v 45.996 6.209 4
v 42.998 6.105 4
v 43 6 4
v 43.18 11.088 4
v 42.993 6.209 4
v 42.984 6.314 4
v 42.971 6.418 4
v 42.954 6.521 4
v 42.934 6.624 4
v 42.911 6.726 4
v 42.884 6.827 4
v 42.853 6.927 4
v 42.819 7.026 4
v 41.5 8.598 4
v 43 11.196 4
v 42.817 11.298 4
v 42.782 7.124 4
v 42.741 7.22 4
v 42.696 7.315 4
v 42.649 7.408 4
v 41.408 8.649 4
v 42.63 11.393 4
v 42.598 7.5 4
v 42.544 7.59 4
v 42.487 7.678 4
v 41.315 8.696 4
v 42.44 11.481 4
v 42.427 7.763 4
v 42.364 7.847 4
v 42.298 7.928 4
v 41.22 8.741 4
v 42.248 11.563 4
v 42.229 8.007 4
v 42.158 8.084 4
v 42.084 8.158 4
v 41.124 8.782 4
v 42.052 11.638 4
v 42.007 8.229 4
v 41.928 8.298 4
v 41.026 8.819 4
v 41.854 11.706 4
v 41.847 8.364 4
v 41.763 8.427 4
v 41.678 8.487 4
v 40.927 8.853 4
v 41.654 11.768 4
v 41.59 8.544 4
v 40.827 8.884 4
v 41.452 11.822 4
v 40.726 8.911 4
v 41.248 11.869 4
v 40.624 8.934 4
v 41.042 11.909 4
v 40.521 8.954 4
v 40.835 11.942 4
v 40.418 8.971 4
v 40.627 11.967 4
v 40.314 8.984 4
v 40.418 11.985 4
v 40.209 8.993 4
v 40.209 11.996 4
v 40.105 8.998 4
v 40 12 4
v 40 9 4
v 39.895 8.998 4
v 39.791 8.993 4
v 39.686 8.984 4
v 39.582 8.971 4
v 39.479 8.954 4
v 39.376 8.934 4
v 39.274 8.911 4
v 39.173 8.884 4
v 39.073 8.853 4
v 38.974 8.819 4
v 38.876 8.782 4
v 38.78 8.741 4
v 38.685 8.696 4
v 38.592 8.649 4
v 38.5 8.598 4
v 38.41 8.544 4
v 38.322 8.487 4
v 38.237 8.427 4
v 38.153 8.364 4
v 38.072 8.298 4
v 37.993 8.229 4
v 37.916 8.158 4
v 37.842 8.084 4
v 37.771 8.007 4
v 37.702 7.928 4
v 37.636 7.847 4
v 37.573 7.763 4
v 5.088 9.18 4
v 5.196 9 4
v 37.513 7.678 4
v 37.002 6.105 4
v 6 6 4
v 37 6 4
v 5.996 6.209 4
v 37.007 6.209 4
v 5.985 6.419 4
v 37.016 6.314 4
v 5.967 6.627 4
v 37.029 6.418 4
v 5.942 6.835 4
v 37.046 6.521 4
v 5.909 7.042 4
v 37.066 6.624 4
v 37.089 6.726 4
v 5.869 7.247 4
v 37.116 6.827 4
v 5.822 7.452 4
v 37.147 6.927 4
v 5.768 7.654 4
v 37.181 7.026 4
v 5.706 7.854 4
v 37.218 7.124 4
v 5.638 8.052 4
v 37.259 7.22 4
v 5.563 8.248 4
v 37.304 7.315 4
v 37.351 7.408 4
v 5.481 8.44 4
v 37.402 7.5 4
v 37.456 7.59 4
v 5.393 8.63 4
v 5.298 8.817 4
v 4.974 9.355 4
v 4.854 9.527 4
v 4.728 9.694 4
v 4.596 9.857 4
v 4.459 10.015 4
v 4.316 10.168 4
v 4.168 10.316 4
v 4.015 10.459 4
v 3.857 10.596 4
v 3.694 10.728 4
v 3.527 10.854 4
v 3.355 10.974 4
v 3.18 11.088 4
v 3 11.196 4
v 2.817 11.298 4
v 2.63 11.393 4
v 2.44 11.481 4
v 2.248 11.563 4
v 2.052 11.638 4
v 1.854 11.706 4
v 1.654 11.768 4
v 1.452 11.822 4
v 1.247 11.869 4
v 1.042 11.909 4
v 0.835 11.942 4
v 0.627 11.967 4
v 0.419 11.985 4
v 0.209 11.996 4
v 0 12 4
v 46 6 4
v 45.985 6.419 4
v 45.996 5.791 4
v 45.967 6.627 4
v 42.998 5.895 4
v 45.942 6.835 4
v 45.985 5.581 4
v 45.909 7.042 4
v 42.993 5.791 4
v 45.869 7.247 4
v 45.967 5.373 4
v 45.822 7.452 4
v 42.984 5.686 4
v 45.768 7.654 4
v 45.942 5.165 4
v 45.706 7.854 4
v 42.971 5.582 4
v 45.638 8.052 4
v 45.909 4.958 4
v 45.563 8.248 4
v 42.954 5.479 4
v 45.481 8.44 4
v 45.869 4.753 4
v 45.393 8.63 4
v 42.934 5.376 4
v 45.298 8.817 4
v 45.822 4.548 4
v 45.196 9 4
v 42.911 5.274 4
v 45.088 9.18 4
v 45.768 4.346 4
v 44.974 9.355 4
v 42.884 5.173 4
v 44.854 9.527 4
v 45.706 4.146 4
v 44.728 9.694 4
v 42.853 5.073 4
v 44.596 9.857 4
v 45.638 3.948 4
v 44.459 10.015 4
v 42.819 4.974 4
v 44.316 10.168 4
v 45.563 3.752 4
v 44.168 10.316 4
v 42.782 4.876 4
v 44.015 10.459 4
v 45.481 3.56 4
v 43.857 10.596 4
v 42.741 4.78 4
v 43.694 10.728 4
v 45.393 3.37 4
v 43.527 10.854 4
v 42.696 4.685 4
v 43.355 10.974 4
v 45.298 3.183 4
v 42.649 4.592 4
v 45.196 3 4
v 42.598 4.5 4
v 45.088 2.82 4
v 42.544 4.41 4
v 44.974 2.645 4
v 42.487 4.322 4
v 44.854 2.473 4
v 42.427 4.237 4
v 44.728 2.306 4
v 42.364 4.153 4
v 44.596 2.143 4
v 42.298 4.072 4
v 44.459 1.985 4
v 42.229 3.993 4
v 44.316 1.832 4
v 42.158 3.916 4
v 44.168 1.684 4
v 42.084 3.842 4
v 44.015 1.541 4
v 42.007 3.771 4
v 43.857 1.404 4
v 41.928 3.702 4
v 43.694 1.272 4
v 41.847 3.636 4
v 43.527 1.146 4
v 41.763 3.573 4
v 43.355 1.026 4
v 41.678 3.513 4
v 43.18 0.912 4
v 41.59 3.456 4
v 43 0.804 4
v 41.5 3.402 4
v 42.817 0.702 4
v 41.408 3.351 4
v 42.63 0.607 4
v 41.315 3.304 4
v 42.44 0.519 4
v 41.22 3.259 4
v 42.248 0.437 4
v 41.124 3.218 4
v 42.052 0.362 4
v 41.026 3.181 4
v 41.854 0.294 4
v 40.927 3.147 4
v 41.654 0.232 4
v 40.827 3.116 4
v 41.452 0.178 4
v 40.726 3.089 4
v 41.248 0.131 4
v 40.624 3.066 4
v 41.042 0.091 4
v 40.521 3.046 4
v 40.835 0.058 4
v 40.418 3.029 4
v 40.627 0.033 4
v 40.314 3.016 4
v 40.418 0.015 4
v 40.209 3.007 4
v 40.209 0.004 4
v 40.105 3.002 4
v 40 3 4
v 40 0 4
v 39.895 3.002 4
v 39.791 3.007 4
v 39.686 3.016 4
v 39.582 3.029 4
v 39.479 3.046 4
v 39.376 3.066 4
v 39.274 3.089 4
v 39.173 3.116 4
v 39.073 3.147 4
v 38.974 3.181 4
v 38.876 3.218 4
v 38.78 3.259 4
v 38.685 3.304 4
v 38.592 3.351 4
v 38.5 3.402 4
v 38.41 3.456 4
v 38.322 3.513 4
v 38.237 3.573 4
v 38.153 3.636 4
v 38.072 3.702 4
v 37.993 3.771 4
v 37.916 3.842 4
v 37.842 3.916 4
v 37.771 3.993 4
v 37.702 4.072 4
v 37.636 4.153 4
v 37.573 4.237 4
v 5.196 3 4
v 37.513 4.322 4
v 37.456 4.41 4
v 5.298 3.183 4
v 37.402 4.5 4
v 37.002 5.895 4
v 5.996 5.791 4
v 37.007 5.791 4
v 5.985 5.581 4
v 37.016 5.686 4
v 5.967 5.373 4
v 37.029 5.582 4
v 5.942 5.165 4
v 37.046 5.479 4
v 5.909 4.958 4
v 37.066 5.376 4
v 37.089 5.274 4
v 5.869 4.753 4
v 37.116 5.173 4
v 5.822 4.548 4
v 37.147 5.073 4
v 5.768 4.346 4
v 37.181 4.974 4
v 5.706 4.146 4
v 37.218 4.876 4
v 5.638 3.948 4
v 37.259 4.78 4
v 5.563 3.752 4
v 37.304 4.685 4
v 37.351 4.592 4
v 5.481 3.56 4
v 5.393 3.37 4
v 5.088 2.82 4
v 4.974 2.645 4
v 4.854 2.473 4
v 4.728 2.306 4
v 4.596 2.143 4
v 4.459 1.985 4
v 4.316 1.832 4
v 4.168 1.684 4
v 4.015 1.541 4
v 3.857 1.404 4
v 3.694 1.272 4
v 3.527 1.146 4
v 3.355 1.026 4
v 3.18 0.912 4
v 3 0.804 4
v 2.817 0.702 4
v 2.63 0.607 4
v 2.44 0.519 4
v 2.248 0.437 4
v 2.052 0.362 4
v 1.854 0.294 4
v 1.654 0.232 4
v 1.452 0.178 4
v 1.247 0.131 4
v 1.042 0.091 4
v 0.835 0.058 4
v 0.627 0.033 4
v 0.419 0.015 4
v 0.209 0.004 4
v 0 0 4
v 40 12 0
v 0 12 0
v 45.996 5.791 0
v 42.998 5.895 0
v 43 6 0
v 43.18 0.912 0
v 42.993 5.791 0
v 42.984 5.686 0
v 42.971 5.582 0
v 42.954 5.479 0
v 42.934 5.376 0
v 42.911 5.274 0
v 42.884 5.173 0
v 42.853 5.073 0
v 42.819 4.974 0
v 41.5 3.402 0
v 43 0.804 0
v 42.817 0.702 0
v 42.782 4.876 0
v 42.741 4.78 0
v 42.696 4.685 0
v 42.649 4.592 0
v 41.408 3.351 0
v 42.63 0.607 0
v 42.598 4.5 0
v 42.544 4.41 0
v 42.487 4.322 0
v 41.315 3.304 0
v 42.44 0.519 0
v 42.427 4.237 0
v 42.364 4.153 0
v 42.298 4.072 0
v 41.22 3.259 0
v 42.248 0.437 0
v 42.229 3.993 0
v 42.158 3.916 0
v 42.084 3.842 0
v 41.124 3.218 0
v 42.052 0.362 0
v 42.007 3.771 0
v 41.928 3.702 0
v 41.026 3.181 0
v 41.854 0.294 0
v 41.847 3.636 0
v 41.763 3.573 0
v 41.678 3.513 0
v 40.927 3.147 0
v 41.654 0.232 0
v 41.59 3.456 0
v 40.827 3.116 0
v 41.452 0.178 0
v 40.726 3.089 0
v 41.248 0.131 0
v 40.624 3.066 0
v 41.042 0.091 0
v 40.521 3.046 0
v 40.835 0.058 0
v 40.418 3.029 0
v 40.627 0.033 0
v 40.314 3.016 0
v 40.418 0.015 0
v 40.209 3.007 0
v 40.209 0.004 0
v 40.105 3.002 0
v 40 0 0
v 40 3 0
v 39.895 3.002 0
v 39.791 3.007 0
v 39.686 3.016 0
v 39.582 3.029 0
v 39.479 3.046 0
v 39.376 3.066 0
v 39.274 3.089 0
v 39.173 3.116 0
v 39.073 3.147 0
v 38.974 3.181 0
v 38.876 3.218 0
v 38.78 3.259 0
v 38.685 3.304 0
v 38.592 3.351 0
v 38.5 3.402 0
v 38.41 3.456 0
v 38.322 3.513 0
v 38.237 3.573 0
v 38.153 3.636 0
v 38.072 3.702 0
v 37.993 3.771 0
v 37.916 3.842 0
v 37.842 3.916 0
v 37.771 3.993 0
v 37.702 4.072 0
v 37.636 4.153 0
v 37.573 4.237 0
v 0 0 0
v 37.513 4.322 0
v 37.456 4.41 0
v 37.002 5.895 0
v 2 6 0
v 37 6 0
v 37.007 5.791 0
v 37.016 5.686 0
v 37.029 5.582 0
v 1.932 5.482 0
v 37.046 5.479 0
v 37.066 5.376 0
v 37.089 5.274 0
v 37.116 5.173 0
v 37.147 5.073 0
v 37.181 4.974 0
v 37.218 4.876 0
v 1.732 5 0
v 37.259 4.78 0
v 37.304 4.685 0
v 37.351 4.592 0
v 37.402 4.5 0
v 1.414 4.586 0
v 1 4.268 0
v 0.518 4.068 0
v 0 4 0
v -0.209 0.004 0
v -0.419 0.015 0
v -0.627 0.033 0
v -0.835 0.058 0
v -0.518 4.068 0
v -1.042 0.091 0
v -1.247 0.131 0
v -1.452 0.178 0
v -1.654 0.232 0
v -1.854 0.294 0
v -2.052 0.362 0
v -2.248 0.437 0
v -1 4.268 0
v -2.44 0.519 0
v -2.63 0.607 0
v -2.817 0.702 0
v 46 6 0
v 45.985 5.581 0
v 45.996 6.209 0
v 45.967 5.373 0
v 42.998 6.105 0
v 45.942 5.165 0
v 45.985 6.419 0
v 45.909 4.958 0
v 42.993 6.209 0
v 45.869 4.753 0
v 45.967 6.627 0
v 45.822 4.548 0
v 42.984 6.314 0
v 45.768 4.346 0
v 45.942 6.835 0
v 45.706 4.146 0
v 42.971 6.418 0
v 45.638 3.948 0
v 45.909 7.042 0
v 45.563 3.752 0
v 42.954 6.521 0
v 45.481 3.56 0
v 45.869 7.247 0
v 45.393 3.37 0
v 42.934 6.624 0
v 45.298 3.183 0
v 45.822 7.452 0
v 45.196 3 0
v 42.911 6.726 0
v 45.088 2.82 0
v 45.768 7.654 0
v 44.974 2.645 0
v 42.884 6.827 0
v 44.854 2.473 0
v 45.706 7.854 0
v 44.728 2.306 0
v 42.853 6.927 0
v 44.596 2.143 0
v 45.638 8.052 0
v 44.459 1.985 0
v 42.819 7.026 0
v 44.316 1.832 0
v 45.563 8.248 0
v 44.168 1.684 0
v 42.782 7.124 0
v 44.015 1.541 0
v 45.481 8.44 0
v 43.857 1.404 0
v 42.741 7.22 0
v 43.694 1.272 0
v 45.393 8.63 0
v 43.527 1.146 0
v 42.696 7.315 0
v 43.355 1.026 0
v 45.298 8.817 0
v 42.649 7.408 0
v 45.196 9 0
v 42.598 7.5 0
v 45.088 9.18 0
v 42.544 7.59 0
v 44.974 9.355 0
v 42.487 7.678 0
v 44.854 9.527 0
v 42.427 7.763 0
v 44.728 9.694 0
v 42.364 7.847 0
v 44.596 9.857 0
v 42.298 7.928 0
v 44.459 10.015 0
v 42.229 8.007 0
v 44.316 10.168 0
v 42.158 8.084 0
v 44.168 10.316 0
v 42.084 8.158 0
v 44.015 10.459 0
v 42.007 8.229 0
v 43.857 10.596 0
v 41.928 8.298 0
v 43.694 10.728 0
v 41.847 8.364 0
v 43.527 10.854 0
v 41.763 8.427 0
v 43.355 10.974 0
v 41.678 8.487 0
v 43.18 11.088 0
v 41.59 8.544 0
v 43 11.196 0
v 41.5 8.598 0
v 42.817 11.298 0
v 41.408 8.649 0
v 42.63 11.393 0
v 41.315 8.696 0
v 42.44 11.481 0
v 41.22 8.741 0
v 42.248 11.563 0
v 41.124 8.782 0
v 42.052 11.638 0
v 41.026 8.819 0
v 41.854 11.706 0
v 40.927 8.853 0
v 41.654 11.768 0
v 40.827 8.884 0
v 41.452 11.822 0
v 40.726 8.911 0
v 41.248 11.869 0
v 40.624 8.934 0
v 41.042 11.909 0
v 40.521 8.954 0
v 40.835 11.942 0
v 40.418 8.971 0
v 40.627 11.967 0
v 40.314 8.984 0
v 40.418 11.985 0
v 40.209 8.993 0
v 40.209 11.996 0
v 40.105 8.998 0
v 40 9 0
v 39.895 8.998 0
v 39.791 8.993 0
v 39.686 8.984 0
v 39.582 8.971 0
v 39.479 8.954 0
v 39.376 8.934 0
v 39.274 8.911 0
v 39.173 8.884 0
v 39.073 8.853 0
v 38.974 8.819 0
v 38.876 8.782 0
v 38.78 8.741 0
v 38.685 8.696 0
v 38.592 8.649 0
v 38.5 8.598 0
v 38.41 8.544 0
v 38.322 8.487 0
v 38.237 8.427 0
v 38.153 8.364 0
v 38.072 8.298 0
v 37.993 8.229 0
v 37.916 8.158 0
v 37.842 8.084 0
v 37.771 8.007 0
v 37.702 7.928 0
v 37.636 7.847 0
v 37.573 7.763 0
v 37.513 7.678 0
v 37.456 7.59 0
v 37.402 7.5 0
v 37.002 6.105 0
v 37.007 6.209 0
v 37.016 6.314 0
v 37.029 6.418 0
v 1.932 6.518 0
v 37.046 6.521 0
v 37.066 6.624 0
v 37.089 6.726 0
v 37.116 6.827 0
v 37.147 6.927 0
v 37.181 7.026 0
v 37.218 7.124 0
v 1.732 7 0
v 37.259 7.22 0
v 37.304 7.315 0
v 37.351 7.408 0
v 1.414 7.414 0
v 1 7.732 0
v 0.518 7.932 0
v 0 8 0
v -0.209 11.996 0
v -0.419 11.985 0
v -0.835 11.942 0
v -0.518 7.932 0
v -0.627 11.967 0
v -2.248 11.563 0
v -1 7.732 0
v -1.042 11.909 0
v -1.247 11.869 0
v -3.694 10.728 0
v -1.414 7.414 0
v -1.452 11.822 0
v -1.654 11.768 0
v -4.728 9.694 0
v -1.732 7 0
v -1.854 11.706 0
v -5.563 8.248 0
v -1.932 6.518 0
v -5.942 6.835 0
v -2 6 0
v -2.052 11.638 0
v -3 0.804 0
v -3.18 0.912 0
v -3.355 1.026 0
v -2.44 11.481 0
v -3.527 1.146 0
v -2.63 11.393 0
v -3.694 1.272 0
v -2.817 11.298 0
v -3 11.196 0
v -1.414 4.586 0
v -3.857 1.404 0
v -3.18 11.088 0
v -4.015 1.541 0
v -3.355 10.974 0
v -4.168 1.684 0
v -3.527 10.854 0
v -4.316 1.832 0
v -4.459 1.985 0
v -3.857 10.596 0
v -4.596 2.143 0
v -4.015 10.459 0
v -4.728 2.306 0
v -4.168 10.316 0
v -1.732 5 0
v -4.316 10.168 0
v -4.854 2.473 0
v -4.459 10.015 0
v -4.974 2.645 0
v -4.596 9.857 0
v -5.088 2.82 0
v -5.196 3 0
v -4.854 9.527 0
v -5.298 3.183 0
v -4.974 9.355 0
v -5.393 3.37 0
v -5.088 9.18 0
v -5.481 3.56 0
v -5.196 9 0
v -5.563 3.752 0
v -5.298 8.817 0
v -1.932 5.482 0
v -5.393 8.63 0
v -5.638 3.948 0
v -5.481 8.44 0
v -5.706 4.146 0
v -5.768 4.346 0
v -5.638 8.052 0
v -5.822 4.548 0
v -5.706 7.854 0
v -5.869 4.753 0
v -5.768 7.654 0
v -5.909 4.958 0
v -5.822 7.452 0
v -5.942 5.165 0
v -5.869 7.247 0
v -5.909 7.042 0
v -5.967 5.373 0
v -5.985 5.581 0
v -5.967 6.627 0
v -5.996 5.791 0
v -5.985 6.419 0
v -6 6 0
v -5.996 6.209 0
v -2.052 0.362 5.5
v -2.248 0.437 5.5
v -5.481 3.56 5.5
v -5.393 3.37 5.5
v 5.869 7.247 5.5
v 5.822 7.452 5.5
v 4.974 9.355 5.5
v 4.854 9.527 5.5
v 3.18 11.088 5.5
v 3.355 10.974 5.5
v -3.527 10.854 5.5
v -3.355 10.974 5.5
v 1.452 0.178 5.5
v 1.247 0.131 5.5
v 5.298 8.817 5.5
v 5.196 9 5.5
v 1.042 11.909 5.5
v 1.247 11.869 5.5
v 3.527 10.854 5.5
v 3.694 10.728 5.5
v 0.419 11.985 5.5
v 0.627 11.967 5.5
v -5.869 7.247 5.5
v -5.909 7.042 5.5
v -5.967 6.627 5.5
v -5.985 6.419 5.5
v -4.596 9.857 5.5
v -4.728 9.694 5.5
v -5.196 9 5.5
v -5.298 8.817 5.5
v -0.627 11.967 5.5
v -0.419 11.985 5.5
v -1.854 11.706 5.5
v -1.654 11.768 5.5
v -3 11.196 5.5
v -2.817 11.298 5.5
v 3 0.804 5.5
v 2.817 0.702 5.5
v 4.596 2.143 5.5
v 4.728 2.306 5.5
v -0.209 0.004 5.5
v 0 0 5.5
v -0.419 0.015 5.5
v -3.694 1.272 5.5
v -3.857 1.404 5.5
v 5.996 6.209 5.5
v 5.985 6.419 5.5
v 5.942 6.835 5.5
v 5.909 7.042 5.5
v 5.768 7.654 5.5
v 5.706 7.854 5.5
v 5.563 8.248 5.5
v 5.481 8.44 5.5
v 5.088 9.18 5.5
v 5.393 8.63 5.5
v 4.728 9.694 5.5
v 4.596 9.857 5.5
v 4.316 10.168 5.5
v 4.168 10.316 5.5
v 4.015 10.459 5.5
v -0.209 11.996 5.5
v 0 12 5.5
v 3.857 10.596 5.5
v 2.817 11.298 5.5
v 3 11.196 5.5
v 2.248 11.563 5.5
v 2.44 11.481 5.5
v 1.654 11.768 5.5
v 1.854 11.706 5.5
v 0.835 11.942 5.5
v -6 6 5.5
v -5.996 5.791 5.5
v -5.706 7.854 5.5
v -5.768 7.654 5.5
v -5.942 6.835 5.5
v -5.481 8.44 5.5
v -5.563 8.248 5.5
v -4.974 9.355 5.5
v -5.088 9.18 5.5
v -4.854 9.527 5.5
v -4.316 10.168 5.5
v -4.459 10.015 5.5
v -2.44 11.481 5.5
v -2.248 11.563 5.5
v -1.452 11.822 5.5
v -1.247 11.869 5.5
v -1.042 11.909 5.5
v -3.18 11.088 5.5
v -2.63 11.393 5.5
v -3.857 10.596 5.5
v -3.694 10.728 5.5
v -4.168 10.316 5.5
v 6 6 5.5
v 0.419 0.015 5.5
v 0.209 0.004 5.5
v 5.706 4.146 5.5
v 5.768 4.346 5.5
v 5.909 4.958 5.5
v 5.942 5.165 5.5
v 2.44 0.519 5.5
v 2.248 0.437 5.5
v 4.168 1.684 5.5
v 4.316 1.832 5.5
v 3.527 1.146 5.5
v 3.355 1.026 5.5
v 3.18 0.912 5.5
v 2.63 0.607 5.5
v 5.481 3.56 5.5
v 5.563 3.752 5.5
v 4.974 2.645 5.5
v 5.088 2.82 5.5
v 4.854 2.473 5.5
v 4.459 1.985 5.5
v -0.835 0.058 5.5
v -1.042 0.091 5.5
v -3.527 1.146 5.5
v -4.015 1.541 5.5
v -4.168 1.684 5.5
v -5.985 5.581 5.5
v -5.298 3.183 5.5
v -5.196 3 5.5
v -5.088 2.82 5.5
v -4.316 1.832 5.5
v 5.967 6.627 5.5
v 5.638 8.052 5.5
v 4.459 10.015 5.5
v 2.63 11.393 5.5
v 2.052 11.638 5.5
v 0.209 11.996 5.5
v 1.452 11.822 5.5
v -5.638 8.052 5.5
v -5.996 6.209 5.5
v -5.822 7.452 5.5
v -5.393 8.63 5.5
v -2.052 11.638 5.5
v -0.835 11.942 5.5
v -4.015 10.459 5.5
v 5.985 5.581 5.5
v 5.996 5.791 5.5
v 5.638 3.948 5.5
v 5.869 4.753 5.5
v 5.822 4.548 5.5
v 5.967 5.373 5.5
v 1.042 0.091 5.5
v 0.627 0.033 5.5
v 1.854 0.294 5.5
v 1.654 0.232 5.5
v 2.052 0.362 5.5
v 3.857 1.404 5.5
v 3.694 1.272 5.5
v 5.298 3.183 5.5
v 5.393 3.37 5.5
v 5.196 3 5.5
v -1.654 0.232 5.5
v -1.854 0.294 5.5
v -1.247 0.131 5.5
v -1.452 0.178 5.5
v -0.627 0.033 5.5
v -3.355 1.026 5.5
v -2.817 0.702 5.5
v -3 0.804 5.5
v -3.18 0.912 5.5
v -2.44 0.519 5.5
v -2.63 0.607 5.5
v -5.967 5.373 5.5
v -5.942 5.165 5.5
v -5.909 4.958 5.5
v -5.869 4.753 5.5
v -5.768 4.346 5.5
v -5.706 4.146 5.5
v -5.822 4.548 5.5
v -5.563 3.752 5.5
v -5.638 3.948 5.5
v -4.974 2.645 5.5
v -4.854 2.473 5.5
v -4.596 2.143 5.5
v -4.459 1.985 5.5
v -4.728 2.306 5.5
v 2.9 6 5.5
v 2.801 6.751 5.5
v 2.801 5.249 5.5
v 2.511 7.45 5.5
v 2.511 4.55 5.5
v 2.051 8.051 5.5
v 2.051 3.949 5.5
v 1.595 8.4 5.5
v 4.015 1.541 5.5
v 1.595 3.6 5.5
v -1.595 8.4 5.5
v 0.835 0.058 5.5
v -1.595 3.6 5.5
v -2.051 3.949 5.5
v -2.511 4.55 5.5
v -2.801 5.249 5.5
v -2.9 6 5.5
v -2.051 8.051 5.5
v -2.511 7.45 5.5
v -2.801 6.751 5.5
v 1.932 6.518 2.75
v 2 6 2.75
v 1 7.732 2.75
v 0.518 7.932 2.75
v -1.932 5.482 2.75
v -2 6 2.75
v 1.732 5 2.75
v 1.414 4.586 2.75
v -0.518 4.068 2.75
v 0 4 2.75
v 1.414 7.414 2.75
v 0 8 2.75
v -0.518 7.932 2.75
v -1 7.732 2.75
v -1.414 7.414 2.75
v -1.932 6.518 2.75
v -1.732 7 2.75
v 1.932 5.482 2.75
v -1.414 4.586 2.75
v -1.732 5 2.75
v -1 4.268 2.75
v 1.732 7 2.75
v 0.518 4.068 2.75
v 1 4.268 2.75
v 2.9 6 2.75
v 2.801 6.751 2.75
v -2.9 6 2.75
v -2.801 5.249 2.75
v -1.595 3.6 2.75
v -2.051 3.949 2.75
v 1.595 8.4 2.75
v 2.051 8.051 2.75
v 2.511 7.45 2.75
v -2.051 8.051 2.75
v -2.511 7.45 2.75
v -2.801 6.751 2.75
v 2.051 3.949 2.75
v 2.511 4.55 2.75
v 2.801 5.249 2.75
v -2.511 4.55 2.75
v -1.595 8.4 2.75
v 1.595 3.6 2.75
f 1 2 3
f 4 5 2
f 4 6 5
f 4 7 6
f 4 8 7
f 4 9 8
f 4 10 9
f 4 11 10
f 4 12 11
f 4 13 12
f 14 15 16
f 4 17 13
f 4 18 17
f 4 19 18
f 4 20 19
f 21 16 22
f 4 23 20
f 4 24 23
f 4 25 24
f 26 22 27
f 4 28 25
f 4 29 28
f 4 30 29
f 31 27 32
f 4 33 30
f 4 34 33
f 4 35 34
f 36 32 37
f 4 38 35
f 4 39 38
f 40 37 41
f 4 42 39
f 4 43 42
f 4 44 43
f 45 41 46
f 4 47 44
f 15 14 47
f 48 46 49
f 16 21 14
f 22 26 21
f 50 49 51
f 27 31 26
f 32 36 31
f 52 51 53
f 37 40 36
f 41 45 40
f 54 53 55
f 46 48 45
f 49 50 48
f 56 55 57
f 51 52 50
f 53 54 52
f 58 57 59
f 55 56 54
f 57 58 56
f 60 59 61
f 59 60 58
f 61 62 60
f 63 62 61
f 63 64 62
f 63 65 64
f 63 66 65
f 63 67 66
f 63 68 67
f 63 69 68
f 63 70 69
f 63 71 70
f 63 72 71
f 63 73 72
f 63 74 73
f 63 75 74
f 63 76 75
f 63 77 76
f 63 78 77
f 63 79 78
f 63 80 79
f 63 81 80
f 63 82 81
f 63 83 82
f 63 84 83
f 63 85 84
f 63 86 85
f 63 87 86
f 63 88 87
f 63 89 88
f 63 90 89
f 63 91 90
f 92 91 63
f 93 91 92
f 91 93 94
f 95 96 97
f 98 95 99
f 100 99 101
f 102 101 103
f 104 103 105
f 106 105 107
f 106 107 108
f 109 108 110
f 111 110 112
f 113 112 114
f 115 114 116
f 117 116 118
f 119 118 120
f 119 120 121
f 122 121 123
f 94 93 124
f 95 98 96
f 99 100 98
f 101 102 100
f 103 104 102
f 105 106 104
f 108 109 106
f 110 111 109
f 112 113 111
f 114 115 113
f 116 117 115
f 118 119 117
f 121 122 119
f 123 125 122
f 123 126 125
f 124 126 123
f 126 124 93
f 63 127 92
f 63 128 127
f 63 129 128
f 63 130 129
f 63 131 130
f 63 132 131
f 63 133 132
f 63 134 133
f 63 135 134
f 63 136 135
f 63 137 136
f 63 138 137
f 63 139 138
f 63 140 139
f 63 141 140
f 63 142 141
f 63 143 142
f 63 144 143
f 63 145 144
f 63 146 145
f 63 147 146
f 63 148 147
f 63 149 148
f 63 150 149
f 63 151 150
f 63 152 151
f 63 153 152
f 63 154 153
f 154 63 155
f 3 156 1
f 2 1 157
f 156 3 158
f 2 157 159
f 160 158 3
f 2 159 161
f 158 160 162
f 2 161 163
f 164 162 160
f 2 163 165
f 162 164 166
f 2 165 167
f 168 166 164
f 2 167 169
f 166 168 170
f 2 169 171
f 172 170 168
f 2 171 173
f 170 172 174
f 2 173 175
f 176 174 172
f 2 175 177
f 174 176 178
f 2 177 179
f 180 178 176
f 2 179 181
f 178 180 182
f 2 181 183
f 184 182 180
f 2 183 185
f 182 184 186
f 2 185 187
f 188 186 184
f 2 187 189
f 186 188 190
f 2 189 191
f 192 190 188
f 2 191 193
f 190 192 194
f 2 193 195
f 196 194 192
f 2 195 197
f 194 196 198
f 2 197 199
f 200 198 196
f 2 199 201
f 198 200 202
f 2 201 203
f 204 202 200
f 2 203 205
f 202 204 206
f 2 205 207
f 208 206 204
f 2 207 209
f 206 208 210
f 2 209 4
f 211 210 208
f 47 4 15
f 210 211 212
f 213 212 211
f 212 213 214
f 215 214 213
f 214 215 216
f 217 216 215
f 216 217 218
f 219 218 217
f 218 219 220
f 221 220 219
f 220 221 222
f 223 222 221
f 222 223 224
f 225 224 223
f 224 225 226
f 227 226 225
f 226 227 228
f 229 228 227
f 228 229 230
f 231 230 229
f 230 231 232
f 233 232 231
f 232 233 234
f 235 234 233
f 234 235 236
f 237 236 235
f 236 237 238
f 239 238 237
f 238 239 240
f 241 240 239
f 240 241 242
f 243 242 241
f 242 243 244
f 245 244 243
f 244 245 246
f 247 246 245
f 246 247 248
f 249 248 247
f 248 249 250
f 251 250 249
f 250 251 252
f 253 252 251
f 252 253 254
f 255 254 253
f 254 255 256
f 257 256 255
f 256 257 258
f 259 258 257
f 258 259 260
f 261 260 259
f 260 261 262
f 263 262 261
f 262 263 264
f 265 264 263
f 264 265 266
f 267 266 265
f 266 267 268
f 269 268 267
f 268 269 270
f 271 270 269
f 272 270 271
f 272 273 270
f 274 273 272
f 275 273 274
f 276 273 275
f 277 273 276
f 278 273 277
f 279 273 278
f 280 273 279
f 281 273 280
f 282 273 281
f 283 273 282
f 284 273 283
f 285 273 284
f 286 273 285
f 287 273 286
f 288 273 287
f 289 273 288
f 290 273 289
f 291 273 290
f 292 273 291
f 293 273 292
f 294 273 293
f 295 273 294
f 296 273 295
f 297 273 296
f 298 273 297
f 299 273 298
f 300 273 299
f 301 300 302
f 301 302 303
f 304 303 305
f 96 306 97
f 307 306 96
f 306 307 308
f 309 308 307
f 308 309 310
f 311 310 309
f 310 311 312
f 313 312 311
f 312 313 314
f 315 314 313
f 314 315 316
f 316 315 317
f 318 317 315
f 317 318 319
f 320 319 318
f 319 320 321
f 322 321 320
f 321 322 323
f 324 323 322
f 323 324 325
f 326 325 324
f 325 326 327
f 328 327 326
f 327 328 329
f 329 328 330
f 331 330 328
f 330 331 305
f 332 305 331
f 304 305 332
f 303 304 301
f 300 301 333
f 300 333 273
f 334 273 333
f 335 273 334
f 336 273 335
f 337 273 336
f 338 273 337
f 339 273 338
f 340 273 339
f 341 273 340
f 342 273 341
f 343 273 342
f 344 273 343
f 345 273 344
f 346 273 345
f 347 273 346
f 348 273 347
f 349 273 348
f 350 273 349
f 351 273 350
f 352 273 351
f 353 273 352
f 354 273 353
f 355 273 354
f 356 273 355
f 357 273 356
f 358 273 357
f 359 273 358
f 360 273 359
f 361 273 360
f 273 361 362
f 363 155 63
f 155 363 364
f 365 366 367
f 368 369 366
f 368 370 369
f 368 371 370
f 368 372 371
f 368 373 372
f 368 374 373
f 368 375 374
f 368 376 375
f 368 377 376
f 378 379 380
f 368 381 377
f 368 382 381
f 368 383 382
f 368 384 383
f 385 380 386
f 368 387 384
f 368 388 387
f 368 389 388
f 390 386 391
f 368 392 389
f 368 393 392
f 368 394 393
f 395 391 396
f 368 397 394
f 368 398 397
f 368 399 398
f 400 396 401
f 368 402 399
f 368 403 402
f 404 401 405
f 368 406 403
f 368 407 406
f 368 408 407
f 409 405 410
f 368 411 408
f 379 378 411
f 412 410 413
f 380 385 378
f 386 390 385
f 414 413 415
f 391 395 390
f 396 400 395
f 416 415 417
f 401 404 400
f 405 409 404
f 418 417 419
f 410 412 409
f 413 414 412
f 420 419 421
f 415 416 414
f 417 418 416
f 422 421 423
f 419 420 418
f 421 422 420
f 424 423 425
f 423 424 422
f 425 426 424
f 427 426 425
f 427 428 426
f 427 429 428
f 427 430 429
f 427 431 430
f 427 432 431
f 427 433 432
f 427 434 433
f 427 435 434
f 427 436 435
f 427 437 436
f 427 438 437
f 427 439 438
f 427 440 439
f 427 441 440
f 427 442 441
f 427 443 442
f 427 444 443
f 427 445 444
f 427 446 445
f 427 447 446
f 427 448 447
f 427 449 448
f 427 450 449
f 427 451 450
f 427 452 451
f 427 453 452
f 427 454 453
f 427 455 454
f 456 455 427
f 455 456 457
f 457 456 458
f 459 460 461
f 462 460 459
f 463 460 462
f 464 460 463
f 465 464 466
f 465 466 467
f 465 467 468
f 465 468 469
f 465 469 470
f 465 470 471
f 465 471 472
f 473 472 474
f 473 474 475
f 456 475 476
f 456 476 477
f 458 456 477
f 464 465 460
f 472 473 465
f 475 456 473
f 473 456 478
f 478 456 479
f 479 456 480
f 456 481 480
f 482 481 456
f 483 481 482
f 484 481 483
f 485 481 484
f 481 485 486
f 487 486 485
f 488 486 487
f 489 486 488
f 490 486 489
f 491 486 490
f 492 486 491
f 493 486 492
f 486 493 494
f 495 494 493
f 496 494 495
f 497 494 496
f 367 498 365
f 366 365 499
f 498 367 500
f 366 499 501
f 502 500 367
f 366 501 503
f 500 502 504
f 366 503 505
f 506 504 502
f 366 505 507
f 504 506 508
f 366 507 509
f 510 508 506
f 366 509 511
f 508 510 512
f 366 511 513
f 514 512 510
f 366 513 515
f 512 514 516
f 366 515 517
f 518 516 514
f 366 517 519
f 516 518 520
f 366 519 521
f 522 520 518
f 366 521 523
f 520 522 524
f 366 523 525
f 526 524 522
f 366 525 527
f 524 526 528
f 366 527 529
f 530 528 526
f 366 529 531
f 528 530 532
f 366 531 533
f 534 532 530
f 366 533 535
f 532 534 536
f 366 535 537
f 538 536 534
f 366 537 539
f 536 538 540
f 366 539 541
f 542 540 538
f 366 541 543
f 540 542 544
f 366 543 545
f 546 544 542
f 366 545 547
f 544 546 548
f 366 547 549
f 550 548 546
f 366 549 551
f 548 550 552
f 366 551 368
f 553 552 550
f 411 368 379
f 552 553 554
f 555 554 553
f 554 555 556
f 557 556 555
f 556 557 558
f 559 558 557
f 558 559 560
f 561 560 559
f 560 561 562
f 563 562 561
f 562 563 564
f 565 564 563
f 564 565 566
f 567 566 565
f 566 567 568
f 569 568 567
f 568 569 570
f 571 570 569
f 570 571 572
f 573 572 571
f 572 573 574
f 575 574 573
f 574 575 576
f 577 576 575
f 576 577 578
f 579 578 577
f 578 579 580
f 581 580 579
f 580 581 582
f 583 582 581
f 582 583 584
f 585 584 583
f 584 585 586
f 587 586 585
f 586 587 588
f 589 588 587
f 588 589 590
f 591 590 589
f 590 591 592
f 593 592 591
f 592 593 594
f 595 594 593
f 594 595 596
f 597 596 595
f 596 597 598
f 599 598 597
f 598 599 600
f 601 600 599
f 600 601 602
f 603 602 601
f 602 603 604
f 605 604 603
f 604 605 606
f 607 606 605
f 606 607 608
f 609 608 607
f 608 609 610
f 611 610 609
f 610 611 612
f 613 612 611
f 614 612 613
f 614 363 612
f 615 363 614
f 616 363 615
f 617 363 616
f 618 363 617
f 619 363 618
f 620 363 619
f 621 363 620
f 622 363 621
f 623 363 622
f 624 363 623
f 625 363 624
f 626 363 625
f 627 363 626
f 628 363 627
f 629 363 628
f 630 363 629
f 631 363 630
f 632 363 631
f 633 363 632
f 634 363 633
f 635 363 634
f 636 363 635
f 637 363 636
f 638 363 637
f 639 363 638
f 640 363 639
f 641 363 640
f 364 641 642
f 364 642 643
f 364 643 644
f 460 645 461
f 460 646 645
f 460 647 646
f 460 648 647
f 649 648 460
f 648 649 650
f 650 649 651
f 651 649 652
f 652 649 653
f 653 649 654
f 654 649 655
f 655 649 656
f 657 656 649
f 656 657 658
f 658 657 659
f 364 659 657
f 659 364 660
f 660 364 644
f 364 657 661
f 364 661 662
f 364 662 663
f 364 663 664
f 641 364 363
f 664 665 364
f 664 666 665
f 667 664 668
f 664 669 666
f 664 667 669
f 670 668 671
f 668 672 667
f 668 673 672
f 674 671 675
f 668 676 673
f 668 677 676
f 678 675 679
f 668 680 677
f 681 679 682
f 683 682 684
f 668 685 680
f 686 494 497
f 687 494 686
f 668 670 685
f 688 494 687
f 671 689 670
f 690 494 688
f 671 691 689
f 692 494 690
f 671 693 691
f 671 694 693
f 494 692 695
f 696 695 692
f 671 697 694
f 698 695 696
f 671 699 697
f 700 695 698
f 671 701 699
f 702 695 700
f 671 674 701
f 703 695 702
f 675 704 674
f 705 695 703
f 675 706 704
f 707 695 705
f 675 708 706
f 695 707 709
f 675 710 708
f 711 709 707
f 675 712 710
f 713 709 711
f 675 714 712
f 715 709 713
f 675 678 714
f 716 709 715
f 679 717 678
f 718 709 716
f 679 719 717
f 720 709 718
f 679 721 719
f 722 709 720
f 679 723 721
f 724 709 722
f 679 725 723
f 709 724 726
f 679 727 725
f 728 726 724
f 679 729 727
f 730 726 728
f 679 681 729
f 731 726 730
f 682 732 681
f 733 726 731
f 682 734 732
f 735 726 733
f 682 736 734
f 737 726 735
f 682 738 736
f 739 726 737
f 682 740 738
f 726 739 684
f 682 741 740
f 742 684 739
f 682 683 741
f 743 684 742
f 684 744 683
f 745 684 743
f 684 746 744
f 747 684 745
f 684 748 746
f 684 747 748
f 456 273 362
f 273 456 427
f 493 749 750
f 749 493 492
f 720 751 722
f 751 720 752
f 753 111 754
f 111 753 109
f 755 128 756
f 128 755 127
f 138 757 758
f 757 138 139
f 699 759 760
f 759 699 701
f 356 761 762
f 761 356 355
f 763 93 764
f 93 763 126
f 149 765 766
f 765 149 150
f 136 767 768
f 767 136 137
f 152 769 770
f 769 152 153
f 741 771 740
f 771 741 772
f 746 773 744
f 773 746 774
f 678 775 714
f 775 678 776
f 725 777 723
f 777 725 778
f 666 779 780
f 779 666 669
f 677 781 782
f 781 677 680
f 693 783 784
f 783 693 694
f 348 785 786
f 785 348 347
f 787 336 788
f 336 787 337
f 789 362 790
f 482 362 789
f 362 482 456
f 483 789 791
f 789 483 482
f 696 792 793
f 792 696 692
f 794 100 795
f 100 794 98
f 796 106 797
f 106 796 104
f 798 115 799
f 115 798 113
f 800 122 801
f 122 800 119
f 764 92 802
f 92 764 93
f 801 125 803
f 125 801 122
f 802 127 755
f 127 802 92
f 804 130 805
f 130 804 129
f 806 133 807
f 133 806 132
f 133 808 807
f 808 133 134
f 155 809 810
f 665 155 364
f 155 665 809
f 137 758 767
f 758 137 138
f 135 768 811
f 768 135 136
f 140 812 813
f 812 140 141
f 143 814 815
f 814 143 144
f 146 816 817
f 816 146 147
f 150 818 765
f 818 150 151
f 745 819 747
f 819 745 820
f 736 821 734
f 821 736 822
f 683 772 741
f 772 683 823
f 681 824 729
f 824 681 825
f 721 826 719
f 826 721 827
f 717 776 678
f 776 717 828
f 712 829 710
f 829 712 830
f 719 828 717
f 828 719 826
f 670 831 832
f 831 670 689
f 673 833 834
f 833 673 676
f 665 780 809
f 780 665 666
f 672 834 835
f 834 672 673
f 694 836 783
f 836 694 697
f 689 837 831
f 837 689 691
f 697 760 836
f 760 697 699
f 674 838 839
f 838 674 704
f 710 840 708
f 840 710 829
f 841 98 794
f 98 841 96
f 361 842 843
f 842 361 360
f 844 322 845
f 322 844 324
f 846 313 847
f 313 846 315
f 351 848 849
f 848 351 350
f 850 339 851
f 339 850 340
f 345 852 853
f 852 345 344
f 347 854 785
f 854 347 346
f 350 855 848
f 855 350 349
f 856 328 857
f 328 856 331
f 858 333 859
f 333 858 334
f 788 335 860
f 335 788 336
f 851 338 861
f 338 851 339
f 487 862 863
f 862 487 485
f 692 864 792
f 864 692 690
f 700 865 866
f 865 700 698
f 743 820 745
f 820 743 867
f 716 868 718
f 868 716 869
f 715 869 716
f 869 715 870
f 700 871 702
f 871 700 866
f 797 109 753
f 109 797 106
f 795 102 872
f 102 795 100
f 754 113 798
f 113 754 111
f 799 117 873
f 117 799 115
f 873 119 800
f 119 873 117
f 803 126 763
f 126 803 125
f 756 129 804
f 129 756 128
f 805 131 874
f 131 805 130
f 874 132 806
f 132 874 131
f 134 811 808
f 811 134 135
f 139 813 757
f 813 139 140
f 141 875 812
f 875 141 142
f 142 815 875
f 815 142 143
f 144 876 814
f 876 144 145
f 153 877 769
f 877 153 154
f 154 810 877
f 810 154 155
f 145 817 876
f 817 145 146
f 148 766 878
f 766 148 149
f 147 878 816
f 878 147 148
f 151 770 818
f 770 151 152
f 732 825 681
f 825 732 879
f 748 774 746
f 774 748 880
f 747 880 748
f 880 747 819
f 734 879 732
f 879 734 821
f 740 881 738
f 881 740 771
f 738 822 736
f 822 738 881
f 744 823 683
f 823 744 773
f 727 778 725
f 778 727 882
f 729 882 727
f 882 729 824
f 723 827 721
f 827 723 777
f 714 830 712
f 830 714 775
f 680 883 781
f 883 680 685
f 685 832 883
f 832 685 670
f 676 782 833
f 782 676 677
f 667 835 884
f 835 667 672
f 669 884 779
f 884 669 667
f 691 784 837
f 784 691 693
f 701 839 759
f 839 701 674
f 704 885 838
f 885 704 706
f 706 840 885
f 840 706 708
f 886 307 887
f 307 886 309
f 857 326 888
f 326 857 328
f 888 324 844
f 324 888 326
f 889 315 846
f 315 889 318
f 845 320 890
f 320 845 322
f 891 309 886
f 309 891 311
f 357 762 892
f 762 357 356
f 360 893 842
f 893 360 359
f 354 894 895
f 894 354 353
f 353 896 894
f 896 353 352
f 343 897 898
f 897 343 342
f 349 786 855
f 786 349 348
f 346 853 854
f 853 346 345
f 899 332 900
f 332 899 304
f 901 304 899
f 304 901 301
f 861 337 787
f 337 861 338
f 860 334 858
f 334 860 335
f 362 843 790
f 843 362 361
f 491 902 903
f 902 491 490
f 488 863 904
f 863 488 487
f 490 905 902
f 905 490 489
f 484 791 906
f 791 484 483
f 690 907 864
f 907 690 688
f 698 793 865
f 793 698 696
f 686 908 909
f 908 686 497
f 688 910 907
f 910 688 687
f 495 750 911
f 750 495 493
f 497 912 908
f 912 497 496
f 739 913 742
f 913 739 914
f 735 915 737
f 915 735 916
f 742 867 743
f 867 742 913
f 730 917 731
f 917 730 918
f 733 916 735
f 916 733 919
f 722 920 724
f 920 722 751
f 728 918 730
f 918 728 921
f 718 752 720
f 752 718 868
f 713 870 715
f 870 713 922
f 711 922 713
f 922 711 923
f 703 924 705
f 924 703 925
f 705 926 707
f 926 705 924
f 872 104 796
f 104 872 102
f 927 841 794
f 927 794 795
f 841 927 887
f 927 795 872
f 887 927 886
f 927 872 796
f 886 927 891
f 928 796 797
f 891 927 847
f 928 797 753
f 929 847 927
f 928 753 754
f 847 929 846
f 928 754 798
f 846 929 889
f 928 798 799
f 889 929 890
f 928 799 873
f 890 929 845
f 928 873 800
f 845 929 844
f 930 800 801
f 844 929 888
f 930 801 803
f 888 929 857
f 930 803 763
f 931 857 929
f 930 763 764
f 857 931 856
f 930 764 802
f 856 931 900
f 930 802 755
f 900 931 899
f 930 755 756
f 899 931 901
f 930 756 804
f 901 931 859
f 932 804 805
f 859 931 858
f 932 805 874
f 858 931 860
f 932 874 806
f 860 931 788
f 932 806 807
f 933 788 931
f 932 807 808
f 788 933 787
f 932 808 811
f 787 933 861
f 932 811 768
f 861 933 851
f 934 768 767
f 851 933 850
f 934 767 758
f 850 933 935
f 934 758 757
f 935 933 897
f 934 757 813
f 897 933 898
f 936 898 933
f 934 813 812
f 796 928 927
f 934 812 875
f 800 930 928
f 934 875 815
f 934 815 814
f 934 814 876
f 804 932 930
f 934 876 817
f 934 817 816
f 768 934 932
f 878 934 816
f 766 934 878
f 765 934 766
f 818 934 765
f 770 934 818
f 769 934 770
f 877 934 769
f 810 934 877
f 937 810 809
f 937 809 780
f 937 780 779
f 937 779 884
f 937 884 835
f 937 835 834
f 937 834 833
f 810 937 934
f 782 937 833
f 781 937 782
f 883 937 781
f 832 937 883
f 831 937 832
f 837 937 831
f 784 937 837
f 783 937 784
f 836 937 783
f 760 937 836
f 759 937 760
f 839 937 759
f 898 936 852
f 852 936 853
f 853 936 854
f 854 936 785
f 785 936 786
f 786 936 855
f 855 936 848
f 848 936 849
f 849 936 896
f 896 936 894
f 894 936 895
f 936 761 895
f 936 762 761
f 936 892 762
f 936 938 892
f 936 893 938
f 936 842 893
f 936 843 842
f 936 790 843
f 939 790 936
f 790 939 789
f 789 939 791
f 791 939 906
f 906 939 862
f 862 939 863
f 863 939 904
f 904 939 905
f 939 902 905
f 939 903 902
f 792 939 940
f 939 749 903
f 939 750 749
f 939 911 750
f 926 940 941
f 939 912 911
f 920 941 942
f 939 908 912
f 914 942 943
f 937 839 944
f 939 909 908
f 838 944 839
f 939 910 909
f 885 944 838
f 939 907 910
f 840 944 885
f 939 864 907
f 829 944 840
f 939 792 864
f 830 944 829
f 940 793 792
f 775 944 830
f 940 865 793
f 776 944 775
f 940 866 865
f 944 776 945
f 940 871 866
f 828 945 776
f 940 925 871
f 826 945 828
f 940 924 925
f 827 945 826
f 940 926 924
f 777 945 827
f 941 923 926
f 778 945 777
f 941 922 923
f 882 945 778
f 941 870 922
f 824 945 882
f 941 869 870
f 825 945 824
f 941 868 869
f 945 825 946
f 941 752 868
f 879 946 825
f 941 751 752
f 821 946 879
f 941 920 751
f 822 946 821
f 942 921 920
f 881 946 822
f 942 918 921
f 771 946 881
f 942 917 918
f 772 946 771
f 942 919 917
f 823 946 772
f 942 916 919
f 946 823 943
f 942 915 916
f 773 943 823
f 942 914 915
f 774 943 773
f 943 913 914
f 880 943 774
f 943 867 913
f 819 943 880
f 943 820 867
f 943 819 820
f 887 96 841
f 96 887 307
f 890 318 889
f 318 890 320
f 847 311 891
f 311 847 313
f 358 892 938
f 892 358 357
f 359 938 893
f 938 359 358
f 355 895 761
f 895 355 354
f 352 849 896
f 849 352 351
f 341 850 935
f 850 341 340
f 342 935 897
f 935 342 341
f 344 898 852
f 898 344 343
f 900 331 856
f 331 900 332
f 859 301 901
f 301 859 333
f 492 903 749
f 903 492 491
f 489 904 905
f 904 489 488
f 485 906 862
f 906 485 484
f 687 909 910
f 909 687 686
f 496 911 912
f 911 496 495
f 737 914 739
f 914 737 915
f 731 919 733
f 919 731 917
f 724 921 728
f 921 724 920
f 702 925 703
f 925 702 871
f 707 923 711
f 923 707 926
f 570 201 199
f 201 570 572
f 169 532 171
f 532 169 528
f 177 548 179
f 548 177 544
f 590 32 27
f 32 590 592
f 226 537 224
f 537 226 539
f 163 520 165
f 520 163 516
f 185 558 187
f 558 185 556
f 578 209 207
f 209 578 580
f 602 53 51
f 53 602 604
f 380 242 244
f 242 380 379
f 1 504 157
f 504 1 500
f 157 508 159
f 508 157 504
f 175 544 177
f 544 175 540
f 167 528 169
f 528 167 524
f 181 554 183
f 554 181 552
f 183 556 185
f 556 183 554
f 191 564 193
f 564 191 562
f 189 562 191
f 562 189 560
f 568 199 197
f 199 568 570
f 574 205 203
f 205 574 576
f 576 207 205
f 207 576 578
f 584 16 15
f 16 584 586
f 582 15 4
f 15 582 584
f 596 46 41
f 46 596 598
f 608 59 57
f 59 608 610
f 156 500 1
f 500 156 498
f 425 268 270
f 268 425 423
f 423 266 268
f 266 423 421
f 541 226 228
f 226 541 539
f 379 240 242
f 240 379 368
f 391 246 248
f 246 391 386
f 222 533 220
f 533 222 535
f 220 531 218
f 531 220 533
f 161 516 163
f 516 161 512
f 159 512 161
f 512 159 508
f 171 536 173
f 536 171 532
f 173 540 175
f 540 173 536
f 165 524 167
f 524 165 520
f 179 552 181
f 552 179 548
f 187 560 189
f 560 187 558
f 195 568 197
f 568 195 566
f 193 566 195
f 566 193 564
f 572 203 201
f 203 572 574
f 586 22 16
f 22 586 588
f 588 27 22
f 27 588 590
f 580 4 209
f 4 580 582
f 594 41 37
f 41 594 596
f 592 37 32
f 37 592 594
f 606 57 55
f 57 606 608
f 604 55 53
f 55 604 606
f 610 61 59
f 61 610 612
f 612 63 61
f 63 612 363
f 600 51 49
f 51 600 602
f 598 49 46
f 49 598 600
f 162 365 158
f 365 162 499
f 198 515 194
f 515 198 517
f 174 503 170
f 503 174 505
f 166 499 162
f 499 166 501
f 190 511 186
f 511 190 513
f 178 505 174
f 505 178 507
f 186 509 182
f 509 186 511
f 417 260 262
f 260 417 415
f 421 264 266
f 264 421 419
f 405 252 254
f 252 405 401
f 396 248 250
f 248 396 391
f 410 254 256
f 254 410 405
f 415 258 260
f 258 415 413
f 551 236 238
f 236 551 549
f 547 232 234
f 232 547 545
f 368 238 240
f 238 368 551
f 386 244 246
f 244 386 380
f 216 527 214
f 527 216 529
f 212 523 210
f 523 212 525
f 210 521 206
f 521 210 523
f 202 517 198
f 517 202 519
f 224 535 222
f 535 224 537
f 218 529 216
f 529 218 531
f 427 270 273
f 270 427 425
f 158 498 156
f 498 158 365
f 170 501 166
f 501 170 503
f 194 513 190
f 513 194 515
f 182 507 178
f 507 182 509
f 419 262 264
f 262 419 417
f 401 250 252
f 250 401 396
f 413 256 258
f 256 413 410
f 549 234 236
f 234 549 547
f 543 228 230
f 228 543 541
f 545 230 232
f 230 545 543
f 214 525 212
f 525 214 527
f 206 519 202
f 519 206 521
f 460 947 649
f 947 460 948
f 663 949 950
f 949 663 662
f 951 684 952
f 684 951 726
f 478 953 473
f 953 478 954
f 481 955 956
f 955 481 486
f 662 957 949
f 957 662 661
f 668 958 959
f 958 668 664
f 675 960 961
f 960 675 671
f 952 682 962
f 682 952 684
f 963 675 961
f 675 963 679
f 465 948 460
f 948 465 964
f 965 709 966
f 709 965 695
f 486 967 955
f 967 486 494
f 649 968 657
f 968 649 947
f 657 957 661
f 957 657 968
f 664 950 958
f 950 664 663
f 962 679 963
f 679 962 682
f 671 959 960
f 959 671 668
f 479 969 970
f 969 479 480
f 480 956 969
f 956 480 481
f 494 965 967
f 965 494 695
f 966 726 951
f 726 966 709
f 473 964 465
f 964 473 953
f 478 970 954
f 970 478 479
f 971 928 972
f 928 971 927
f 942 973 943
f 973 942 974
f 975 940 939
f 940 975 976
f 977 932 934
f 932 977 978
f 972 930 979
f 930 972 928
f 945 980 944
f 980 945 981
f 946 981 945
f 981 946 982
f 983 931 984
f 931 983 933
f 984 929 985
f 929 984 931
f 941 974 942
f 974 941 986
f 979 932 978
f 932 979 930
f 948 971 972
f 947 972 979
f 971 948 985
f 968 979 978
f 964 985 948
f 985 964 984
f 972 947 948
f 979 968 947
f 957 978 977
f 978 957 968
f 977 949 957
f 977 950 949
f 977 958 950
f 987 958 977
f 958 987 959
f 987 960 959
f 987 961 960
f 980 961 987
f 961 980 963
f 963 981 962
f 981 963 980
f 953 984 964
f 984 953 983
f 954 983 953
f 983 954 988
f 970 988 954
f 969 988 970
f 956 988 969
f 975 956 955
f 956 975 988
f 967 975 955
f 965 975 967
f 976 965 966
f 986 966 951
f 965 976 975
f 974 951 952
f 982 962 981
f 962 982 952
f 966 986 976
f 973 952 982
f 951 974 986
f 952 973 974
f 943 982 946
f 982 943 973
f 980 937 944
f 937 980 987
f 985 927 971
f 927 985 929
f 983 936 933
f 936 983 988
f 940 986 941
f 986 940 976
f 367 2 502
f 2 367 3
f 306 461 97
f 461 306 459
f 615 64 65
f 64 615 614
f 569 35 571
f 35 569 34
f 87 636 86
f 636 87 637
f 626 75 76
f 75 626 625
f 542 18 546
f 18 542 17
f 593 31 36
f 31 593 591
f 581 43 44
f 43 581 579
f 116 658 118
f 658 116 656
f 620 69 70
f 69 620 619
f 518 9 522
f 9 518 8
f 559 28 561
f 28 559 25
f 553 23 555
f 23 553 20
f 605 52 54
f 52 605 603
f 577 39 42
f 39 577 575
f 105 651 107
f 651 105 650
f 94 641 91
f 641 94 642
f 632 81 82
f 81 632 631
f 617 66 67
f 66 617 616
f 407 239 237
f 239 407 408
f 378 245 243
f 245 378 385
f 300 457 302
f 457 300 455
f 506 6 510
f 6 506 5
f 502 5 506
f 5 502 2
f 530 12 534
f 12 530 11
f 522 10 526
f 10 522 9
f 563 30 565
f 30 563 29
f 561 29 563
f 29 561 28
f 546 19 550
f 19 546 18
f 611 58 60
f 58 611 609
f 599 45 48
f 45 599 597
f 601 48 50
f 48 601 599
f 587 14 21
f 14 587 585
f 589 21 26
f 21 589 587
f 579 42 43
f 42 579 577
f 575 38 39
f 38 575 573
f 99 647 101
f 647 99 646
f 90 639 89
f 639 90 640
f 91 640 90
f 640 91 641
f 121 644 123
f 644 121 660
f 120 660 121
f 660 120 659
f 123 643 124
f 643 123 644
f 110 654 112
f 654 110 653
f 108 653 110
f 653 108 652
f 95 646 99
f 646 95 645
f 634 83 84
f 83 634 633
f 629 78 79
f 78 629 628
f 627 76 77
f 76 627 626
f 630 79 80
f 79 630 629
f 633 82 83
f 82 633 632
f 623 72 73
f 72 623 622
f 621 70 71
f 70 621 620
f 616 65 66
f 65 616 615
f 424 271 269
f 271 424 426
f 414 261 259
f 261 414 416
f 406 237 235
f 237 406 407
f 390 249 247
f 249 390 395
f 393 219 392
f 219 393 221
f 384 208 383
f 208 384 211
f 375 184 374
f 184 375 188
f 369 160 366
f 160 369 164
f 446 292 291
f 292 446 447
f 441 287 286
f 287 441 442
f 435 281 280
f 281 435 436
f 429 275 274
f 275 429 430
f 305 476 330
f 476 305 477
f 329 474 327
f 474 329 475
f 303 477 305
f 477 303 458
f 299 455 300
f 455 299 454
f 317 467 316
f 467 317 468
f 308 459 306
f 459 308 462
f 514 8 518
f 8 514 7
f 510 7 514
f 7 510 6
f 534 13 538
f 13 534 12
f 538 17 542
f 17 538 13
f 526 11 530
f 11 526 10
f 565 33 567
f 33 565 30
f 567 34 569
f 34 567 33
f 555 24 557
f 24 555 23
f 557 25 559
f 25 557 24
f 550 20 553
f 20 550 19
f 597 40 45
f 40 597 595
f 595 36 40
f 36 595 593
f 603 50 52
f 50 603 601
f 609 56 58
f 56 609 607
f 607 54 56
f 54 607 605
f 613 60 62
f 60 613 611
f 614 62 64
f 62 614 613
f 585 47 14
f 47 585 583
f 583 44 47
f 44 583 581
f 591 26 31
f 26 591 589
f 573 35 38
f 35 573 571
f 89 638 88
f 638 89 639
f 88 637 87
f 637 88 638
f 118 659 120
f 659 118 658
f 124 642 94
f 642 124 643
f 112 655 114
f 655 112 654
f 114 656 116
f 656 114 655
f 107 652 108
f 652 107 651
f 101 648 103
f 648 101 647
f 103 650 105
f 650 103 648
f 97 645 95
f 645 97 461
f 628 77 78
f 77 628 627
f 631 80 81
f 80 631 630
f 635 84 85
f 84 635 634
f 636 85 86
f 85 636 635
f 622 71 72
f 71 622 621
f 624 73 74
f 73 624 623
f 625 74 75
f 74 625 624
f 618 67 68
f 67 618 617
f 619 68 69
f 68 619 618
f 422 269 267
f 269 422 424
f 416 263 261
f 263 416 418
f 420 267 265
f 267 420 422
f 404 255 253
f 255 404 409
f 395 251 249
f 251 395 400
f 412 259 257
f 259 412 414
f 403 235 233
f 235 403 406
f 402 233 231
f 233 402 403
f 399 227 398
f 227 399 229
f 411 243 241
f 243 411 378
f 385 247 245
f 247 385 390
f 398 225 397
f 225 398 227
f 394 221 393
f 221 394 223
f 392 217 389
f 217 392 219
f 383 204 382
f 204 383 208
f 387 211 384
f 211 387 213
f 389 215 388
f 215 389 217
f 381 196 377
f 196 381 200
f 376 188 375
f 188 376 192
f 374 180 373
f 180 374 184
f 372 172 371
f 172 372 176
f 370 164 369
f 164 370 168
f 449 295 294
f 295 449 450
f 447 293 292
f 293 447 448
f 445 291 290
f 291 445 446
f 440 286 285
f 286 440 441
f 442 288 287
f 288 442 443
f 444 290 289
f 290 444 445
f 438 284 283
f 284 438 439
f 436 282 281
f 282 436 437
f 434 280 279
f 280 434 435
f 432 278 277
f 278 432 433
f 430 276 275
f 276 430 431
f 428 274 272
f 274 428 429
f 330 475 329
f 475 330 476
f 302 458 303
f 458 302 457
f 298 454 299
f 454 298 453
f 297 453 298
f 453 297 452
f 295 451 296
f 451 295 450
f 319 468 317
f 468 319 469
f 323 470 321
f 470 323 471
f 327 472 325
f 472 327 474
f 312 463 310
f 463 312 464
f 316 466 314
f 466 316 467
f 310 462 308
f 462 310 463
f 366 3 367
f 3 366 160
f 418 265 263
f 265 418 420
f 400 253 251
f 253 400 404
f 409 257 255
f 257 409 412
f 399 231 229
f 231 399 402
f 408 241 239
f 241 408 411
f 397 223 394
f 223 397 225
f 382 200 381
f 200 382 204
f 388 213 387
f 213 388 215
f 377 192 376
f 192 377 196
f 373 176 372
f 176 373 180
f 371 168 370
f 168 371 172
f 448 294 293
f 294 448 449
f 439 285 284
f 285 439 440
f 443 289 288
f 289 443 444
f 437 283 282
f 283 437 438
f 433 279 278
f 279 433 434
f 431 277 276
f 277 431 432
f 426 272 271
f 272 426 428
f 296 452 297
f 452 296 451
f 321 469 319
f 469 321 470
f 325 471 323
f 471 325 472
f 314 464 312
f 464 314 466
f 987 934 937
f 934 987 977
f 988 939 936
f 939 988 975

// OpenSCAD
difference() {
    union() {
        cube([40,12,4]);
        translate([0, 6, 0])
        cylinder(d1=12, d2=12, h=5.5, $fn=180);
        translate([40, 6, 0])
        cylinder(d1=12, d2=12, h=4, $fn=180);
    }
    translate([0, 6, -0.1])
    cylinder(d1=4, d2=4, h=7, $fn=24);
    translate([0, 6, 2.75])
    cylinder(d1=5.8, d2=5.8, h=7, $fn=24);
    translate([40, 6, -0.1])
    cylinder(d1=6, d2=6, h=5, $fn=180);
}
    color("red")
    translate([-4,8.4,0])
    cube([7,1.5,5.5]);
color("red")
    translate([-4,2,0])
    cube([8,1.6,5.5]);
